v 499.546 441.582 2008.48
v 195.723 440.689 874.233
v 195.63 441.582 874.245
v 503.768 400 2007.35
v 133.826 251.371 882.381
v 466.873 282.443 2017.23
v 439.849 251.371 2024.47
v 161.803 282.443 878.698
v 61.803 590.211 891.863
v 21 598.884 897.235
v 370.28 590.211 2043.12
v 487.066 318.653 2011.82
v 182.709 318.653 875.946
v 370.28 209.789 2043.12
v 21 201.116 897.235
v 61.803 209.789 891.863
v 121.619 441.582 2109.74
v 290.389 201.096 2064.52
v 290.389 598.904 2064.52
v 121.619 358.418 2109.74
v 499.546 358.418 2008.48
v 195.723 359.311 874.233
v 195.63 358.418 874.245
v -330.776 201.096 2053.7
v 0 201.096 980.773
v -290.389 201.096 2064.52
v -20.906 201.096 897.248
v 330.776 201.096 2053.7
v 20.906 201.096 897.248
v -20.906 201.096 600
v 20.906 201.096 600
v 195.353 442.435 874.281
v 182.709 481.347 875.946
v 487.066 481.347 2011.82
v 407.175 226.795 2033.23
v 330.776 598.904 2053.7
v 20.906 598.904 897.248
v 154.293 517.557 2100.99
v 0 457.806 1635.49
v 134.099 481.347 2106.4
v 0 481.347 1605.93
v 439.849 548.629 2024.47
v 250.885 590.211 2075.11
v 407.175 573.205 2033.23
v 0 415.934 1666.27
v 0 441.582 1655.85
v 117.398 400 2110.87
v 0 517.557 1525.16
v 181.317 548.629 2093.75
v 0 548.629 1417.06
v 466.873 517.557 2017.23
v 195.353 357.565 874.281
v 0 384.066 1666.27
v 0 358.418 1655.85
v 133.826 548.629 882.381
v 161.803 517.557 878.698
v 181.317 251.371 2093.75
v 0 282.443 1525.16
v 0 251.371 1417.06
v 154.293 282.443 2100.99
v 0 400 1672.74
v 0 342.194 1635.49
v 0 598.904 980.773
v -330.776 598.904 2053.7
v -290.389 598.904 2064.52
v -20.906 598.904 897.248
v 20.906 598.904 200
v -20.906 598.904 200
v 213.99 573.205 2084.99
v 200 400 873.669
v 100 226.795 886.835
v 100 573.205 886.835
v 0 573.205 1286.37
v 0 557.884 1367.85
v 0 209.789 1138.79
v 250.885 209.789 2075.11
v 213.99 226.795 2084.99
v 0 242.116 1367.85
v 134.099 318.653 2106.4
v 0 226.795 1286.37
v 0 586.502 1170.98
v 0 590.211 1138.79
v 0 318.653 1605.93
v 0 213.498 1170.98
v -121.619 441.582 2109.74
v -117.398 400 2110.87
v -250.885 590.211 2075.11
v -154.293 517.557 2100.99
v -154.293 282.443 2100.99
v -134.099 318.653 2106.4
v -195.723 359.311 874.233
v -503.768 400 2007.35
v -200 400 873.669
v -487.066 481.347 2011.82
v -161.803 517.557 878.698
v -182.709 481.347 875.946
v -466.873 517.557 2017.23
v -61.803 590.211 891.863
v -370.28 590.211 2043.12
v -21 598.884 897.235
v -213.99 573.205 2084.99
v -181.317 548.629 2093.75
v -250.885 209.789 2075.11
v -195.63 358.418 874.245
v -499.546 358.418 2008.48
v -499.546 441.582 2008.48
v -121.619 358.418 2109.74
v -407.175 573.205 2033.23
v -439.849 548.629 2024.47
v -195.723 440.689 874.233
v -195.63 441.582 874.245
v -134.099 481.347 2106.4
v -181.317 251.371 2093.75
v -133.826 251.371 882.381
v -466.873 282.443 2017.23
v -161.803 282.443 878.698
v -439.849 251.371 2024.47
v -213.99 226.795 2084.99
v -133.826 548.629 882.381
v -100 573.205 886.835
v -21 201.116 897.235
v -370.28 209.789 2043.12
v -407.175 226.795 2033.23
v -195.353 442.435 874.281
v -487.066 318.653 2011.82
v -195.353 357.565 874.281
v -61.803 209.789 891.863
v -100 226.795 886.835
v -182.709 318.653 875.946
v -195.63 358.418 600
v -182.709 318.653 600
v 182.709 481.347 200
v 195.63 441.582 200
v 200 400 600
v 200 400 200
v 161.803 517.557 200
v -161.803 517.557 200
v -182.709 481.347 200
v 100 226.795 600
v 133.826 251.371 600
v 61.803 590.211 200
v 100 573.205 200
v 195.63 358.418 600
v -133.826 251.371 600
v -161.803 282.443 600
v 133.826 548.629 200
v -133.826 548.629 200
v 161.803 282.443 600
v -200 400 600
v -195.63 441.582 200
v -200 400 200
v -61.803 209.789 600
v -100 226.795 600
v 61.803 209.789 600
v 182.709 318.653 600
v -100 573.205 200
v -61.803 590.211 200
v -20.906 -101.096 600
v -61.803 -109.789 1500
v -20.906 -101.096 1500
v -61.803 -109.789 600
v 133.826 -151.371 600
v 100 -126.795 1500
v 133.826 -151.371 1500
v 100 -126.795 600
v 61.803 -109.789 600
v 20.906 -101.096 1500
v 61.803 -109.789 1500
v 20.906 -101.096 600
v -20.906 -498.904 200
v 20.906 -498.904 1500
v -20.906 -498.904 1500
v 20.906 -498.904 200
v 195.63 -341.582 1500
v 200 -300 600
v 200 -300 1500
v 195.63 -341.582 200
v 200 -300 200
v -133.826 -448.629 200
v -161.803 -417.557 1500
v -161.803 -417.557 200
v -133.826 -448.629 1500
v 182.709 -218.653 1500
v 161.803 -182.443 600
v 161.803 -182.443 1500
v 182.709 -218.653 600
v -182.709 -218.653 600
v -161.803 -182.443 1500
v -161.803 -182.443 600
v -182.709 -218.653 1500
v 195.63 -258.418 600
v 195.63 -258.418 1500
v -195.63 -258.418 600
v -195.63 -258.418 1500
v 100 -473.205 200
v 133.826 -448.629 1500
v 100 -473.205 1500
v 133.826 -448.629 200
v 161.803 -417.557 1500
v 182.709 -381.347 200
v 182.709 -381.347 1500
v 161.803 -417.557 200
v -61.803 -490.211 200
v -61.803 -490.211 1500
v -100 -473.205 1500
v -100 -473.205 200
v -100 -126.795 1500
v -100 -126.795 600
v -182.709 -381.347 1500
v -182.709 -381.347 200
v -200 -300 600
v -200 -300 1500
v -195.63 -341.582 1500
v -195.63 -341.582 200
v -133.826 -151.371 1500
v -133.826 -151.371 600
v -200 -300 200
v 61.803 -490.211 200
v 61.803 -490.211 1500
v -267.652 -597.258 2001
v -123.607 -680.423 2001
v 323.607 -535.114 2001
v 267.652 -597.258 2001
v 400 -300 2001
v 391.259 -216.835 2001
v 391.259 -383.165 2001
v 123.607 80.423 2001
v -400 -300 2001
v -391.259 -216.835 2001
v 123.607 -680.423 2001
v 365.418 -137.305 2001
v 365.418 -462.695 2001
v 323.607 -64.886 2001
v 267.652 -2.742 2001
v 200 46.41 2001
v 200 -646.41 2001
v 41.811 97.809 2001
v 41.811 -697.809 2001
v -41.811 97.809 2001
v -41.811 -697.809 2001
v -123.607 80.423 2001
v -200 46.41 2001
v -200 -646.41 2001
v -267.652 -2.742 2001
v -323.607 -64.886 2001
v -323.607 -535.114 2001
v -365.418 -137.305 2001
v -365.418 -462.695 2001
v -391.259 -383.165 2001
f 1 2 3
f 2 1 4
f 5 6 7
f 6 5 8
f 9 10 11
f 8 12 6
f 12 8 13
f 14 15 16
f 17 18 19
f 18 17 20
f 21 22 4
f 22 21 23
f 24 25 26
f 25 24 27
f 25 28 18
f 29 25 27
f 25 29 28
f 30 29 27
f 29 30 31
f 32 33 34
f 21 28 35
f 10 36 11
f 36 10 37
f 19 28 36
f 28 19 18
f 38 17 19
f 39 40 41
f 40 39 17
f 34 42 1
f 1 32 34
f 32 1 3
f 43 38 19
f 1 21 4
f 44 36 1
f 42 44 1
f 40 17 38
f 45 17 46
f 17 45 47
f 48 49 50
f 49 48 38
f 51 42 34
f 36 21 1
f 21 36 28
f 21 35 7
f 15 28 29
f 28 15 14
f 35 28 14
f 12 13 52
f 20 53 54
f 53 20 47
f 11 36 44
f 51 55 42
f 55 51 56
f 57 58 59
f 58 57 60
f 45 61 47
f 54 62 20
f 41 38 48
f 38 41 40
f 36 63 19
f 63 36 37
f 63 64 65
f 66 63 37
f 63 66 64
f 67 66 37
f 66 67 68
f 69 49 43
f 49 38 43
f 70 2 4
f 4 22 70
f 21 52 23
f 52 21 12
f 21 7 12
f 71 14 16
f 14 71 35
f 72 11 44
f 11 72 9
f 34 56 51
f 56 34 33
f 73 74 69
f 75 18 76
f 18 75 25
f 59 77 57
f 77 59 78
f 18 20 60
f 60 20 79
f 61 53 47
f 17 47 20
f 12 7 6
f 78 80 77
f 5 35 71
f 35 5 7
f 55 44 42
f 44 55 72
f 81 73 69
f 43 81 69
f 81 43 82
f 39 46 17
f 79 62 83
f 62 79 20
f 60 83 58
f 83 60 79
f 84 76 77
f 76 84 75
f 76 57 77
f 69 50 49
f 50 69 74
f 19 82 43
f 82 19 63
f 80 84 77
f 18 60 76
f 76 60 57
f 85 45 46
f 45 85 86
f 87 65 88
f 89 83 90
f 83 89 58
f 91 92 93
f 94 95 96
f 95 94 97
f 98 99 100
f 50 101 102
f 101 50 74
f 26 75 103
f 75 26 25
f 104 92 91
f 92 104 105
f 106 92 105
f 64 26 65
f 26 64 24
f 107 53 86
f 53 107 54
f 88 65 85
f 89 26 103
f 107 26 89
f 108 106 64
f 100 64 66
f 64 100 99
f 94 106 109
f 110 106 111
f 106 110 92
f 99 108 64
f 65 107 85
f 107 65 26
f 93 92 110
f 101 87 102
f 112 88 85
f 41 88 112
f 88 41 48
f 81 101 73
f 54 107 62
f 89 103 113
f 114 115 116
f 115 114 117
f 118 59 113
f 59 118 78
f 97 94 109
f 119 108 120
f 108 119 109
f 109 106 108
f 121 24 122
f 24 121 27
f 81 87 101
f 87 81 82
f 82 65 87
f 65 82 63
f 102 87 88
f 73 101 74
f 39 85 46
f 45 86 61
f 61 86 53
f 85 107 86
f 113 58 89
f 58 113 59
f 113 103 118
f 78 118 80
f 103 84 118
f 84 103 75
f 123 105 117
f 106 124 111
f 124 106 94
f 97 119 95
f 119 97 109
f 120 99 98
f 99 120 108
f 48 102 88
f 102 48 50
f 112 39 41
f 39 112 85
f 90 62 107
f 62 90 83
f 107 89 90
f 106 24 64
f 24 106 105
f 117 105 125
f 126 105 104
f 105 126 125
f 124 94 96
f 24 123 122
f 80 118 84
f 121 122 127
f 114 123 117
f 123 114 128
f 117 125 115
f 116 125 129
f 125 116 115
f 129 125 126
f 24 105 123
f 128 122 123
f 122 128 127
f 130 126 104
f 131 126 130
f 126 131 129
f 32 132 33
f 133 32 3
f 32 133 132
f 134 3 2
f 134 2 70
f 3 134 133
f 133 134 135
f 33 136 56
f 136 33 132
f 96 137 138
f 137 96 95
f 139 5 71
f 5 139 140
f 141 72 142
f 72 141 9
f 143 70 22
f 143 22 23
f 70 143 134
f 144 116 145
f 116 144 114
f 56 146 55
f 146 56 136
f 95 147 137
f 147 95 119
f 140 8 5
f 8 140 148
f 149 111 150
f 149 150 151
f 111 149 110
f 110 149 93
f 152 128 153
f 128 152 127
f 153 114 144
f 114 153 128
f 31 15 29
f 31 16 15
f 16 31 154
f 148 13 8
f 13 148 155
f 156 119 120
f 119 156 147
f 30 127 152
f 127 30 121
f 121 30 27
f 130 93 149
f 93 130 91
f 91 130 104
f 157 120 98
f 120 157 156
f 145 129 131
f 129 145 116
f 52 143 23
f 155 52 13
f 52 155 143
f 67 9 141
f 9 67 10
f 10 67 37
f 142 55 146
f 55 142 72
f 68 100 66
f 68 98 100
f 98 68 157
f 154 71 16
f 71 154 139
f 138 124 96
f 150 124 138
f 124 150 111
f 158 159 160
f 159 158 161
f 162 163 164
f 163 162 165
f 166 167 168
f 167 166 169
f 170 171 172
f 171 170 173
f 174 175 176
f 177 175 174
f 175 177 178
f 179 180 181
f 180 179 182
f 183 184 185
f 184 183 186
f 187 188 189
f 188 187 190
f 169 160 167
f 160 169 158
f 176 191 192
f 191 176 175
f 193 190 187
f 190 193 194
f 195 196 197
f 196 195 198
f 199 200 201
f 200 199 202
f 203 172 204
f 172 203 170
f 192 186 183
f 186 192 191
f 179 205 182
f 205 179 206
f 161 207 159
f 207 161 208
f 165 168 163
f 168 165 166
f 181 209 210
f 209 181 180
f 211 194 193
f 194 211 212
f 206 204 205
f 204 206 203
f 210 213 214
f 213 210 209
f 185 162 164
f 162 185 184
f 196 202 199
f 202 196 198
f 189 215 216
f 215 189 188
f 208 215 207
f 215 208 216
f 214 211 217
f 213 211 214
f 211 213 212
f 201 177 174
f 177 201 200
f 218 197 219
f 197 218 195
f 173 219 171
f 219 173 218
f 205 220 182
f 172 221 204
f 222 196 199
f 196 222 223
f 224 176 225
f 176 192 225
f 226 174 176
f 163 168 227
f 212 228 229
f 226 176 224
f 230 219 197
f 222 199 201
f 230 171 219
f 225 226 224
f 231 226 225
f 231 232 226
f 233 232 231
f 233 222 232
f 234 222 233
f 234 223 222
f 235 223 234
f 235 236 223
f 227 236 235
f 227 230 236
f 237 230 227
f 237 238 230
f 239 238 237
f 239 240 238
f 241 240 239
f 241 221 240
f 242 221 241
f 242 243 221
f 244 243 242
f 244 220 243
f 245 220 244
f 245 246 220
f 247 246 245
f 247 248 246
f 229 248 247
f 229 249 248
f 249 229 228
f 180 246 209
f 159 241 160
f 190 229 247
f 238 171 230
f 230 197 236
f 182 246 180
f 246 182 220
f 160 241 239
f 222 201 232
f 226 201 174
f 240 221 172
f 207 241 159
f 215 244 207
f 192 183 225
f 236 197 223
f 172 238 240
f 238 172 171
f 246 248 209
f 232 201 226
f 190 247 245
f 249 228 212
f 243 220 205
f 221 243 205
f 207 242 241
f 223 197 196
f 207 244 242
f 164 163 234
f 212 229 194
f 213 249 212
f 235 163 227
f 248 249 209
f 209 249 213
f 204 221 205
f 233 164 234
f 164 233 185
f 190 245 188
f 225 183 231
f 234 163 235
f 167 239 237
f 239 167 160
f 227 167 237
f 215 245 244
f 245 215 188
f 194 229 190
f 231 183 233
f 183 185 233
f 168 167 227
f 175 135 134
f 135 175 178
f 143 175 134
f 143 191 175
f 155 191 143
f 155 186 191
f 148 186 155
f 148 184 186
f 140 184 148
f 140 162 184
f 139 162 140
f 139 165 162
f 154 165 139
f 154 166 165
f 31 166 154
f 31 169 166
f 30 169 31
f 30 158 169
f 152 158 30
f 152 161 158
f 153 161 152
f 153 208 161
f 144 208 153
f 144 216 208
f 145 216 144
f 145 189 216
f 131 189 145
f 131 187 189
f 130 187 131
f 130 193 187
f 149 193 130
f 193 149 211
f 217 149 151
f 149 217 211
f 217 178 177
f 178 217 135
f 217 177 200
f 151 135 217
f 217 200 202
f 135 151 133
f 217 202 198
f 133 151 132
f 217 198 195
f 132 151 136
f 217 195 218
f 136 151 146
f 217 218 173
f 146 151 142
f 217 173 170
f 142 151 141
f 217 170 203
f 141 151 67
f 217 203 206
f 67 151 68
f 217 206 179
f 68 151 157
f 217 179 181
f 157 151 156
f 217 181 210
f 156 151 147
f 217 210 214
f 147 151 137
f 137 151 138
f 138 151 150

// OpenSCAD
// 1 unit = 10µm
scale_factor = 0.01;
bulk_height = 2000;
bulk_diameter = 1500;
tube_diameter = 400;
bottom_padding = 200;
side_padding = 400;
funnel_height = 500;
y_trunk_height = 700;
y_branch_height = 1200;
y_branch_angle = 15;
holder_height = 700;
holder_diameter = 900;
holder_pin = 10;


module InnerChannels() {
    
    difference() {
    
        translate([0, -bulk_diameter/5, bottom_padding]) {

            cylinder(bulk_height-bottom_padding, d=tube_diameter);
            sphere(d=tube_diameter);

            translate([0, 0, bulk_height-bottom_padding-funnel_height])
                cylinder(funnel_height+1, d1=tube_diameter, d2=tube_diameter*2);

            rotate([-90, 0, 0])
                cylinder(bulk_diameter-side_padding*2, d=tube_diameter);

            translate([0, bulk_diameter-side_padding*2, 0]) {
                
                sphere(d=tube_diameter);
                cylinder(y_trunk_height, d=tube_diameter);
                
                translate([0, 0, y_trunk_height]) {
                    
                    rotate([0, y_branch_angle, 0])
                        cylinder(y_branch_height, d=tube_diameter);
                    rotate([0, -y_branch_angle, 0])
                        cylinder(y_branch_height, d=tube_diameter);
                    
                    
                }
                
            }
            
            translate([-tube_diameter/2, 0, 0])
                cube([tube_diameter, bulk_diameter-side_padding*2, tube_diameter]);

        }

        translate([-(tube_diameter+2)/2, -bulk_diameter/5-tube_diameter/2, -1])
            cube([tube_diameter+2, bulk_diameter-side_padding, (tube_diameter+2)/2]);
                
    }

}

InnerChannels();
